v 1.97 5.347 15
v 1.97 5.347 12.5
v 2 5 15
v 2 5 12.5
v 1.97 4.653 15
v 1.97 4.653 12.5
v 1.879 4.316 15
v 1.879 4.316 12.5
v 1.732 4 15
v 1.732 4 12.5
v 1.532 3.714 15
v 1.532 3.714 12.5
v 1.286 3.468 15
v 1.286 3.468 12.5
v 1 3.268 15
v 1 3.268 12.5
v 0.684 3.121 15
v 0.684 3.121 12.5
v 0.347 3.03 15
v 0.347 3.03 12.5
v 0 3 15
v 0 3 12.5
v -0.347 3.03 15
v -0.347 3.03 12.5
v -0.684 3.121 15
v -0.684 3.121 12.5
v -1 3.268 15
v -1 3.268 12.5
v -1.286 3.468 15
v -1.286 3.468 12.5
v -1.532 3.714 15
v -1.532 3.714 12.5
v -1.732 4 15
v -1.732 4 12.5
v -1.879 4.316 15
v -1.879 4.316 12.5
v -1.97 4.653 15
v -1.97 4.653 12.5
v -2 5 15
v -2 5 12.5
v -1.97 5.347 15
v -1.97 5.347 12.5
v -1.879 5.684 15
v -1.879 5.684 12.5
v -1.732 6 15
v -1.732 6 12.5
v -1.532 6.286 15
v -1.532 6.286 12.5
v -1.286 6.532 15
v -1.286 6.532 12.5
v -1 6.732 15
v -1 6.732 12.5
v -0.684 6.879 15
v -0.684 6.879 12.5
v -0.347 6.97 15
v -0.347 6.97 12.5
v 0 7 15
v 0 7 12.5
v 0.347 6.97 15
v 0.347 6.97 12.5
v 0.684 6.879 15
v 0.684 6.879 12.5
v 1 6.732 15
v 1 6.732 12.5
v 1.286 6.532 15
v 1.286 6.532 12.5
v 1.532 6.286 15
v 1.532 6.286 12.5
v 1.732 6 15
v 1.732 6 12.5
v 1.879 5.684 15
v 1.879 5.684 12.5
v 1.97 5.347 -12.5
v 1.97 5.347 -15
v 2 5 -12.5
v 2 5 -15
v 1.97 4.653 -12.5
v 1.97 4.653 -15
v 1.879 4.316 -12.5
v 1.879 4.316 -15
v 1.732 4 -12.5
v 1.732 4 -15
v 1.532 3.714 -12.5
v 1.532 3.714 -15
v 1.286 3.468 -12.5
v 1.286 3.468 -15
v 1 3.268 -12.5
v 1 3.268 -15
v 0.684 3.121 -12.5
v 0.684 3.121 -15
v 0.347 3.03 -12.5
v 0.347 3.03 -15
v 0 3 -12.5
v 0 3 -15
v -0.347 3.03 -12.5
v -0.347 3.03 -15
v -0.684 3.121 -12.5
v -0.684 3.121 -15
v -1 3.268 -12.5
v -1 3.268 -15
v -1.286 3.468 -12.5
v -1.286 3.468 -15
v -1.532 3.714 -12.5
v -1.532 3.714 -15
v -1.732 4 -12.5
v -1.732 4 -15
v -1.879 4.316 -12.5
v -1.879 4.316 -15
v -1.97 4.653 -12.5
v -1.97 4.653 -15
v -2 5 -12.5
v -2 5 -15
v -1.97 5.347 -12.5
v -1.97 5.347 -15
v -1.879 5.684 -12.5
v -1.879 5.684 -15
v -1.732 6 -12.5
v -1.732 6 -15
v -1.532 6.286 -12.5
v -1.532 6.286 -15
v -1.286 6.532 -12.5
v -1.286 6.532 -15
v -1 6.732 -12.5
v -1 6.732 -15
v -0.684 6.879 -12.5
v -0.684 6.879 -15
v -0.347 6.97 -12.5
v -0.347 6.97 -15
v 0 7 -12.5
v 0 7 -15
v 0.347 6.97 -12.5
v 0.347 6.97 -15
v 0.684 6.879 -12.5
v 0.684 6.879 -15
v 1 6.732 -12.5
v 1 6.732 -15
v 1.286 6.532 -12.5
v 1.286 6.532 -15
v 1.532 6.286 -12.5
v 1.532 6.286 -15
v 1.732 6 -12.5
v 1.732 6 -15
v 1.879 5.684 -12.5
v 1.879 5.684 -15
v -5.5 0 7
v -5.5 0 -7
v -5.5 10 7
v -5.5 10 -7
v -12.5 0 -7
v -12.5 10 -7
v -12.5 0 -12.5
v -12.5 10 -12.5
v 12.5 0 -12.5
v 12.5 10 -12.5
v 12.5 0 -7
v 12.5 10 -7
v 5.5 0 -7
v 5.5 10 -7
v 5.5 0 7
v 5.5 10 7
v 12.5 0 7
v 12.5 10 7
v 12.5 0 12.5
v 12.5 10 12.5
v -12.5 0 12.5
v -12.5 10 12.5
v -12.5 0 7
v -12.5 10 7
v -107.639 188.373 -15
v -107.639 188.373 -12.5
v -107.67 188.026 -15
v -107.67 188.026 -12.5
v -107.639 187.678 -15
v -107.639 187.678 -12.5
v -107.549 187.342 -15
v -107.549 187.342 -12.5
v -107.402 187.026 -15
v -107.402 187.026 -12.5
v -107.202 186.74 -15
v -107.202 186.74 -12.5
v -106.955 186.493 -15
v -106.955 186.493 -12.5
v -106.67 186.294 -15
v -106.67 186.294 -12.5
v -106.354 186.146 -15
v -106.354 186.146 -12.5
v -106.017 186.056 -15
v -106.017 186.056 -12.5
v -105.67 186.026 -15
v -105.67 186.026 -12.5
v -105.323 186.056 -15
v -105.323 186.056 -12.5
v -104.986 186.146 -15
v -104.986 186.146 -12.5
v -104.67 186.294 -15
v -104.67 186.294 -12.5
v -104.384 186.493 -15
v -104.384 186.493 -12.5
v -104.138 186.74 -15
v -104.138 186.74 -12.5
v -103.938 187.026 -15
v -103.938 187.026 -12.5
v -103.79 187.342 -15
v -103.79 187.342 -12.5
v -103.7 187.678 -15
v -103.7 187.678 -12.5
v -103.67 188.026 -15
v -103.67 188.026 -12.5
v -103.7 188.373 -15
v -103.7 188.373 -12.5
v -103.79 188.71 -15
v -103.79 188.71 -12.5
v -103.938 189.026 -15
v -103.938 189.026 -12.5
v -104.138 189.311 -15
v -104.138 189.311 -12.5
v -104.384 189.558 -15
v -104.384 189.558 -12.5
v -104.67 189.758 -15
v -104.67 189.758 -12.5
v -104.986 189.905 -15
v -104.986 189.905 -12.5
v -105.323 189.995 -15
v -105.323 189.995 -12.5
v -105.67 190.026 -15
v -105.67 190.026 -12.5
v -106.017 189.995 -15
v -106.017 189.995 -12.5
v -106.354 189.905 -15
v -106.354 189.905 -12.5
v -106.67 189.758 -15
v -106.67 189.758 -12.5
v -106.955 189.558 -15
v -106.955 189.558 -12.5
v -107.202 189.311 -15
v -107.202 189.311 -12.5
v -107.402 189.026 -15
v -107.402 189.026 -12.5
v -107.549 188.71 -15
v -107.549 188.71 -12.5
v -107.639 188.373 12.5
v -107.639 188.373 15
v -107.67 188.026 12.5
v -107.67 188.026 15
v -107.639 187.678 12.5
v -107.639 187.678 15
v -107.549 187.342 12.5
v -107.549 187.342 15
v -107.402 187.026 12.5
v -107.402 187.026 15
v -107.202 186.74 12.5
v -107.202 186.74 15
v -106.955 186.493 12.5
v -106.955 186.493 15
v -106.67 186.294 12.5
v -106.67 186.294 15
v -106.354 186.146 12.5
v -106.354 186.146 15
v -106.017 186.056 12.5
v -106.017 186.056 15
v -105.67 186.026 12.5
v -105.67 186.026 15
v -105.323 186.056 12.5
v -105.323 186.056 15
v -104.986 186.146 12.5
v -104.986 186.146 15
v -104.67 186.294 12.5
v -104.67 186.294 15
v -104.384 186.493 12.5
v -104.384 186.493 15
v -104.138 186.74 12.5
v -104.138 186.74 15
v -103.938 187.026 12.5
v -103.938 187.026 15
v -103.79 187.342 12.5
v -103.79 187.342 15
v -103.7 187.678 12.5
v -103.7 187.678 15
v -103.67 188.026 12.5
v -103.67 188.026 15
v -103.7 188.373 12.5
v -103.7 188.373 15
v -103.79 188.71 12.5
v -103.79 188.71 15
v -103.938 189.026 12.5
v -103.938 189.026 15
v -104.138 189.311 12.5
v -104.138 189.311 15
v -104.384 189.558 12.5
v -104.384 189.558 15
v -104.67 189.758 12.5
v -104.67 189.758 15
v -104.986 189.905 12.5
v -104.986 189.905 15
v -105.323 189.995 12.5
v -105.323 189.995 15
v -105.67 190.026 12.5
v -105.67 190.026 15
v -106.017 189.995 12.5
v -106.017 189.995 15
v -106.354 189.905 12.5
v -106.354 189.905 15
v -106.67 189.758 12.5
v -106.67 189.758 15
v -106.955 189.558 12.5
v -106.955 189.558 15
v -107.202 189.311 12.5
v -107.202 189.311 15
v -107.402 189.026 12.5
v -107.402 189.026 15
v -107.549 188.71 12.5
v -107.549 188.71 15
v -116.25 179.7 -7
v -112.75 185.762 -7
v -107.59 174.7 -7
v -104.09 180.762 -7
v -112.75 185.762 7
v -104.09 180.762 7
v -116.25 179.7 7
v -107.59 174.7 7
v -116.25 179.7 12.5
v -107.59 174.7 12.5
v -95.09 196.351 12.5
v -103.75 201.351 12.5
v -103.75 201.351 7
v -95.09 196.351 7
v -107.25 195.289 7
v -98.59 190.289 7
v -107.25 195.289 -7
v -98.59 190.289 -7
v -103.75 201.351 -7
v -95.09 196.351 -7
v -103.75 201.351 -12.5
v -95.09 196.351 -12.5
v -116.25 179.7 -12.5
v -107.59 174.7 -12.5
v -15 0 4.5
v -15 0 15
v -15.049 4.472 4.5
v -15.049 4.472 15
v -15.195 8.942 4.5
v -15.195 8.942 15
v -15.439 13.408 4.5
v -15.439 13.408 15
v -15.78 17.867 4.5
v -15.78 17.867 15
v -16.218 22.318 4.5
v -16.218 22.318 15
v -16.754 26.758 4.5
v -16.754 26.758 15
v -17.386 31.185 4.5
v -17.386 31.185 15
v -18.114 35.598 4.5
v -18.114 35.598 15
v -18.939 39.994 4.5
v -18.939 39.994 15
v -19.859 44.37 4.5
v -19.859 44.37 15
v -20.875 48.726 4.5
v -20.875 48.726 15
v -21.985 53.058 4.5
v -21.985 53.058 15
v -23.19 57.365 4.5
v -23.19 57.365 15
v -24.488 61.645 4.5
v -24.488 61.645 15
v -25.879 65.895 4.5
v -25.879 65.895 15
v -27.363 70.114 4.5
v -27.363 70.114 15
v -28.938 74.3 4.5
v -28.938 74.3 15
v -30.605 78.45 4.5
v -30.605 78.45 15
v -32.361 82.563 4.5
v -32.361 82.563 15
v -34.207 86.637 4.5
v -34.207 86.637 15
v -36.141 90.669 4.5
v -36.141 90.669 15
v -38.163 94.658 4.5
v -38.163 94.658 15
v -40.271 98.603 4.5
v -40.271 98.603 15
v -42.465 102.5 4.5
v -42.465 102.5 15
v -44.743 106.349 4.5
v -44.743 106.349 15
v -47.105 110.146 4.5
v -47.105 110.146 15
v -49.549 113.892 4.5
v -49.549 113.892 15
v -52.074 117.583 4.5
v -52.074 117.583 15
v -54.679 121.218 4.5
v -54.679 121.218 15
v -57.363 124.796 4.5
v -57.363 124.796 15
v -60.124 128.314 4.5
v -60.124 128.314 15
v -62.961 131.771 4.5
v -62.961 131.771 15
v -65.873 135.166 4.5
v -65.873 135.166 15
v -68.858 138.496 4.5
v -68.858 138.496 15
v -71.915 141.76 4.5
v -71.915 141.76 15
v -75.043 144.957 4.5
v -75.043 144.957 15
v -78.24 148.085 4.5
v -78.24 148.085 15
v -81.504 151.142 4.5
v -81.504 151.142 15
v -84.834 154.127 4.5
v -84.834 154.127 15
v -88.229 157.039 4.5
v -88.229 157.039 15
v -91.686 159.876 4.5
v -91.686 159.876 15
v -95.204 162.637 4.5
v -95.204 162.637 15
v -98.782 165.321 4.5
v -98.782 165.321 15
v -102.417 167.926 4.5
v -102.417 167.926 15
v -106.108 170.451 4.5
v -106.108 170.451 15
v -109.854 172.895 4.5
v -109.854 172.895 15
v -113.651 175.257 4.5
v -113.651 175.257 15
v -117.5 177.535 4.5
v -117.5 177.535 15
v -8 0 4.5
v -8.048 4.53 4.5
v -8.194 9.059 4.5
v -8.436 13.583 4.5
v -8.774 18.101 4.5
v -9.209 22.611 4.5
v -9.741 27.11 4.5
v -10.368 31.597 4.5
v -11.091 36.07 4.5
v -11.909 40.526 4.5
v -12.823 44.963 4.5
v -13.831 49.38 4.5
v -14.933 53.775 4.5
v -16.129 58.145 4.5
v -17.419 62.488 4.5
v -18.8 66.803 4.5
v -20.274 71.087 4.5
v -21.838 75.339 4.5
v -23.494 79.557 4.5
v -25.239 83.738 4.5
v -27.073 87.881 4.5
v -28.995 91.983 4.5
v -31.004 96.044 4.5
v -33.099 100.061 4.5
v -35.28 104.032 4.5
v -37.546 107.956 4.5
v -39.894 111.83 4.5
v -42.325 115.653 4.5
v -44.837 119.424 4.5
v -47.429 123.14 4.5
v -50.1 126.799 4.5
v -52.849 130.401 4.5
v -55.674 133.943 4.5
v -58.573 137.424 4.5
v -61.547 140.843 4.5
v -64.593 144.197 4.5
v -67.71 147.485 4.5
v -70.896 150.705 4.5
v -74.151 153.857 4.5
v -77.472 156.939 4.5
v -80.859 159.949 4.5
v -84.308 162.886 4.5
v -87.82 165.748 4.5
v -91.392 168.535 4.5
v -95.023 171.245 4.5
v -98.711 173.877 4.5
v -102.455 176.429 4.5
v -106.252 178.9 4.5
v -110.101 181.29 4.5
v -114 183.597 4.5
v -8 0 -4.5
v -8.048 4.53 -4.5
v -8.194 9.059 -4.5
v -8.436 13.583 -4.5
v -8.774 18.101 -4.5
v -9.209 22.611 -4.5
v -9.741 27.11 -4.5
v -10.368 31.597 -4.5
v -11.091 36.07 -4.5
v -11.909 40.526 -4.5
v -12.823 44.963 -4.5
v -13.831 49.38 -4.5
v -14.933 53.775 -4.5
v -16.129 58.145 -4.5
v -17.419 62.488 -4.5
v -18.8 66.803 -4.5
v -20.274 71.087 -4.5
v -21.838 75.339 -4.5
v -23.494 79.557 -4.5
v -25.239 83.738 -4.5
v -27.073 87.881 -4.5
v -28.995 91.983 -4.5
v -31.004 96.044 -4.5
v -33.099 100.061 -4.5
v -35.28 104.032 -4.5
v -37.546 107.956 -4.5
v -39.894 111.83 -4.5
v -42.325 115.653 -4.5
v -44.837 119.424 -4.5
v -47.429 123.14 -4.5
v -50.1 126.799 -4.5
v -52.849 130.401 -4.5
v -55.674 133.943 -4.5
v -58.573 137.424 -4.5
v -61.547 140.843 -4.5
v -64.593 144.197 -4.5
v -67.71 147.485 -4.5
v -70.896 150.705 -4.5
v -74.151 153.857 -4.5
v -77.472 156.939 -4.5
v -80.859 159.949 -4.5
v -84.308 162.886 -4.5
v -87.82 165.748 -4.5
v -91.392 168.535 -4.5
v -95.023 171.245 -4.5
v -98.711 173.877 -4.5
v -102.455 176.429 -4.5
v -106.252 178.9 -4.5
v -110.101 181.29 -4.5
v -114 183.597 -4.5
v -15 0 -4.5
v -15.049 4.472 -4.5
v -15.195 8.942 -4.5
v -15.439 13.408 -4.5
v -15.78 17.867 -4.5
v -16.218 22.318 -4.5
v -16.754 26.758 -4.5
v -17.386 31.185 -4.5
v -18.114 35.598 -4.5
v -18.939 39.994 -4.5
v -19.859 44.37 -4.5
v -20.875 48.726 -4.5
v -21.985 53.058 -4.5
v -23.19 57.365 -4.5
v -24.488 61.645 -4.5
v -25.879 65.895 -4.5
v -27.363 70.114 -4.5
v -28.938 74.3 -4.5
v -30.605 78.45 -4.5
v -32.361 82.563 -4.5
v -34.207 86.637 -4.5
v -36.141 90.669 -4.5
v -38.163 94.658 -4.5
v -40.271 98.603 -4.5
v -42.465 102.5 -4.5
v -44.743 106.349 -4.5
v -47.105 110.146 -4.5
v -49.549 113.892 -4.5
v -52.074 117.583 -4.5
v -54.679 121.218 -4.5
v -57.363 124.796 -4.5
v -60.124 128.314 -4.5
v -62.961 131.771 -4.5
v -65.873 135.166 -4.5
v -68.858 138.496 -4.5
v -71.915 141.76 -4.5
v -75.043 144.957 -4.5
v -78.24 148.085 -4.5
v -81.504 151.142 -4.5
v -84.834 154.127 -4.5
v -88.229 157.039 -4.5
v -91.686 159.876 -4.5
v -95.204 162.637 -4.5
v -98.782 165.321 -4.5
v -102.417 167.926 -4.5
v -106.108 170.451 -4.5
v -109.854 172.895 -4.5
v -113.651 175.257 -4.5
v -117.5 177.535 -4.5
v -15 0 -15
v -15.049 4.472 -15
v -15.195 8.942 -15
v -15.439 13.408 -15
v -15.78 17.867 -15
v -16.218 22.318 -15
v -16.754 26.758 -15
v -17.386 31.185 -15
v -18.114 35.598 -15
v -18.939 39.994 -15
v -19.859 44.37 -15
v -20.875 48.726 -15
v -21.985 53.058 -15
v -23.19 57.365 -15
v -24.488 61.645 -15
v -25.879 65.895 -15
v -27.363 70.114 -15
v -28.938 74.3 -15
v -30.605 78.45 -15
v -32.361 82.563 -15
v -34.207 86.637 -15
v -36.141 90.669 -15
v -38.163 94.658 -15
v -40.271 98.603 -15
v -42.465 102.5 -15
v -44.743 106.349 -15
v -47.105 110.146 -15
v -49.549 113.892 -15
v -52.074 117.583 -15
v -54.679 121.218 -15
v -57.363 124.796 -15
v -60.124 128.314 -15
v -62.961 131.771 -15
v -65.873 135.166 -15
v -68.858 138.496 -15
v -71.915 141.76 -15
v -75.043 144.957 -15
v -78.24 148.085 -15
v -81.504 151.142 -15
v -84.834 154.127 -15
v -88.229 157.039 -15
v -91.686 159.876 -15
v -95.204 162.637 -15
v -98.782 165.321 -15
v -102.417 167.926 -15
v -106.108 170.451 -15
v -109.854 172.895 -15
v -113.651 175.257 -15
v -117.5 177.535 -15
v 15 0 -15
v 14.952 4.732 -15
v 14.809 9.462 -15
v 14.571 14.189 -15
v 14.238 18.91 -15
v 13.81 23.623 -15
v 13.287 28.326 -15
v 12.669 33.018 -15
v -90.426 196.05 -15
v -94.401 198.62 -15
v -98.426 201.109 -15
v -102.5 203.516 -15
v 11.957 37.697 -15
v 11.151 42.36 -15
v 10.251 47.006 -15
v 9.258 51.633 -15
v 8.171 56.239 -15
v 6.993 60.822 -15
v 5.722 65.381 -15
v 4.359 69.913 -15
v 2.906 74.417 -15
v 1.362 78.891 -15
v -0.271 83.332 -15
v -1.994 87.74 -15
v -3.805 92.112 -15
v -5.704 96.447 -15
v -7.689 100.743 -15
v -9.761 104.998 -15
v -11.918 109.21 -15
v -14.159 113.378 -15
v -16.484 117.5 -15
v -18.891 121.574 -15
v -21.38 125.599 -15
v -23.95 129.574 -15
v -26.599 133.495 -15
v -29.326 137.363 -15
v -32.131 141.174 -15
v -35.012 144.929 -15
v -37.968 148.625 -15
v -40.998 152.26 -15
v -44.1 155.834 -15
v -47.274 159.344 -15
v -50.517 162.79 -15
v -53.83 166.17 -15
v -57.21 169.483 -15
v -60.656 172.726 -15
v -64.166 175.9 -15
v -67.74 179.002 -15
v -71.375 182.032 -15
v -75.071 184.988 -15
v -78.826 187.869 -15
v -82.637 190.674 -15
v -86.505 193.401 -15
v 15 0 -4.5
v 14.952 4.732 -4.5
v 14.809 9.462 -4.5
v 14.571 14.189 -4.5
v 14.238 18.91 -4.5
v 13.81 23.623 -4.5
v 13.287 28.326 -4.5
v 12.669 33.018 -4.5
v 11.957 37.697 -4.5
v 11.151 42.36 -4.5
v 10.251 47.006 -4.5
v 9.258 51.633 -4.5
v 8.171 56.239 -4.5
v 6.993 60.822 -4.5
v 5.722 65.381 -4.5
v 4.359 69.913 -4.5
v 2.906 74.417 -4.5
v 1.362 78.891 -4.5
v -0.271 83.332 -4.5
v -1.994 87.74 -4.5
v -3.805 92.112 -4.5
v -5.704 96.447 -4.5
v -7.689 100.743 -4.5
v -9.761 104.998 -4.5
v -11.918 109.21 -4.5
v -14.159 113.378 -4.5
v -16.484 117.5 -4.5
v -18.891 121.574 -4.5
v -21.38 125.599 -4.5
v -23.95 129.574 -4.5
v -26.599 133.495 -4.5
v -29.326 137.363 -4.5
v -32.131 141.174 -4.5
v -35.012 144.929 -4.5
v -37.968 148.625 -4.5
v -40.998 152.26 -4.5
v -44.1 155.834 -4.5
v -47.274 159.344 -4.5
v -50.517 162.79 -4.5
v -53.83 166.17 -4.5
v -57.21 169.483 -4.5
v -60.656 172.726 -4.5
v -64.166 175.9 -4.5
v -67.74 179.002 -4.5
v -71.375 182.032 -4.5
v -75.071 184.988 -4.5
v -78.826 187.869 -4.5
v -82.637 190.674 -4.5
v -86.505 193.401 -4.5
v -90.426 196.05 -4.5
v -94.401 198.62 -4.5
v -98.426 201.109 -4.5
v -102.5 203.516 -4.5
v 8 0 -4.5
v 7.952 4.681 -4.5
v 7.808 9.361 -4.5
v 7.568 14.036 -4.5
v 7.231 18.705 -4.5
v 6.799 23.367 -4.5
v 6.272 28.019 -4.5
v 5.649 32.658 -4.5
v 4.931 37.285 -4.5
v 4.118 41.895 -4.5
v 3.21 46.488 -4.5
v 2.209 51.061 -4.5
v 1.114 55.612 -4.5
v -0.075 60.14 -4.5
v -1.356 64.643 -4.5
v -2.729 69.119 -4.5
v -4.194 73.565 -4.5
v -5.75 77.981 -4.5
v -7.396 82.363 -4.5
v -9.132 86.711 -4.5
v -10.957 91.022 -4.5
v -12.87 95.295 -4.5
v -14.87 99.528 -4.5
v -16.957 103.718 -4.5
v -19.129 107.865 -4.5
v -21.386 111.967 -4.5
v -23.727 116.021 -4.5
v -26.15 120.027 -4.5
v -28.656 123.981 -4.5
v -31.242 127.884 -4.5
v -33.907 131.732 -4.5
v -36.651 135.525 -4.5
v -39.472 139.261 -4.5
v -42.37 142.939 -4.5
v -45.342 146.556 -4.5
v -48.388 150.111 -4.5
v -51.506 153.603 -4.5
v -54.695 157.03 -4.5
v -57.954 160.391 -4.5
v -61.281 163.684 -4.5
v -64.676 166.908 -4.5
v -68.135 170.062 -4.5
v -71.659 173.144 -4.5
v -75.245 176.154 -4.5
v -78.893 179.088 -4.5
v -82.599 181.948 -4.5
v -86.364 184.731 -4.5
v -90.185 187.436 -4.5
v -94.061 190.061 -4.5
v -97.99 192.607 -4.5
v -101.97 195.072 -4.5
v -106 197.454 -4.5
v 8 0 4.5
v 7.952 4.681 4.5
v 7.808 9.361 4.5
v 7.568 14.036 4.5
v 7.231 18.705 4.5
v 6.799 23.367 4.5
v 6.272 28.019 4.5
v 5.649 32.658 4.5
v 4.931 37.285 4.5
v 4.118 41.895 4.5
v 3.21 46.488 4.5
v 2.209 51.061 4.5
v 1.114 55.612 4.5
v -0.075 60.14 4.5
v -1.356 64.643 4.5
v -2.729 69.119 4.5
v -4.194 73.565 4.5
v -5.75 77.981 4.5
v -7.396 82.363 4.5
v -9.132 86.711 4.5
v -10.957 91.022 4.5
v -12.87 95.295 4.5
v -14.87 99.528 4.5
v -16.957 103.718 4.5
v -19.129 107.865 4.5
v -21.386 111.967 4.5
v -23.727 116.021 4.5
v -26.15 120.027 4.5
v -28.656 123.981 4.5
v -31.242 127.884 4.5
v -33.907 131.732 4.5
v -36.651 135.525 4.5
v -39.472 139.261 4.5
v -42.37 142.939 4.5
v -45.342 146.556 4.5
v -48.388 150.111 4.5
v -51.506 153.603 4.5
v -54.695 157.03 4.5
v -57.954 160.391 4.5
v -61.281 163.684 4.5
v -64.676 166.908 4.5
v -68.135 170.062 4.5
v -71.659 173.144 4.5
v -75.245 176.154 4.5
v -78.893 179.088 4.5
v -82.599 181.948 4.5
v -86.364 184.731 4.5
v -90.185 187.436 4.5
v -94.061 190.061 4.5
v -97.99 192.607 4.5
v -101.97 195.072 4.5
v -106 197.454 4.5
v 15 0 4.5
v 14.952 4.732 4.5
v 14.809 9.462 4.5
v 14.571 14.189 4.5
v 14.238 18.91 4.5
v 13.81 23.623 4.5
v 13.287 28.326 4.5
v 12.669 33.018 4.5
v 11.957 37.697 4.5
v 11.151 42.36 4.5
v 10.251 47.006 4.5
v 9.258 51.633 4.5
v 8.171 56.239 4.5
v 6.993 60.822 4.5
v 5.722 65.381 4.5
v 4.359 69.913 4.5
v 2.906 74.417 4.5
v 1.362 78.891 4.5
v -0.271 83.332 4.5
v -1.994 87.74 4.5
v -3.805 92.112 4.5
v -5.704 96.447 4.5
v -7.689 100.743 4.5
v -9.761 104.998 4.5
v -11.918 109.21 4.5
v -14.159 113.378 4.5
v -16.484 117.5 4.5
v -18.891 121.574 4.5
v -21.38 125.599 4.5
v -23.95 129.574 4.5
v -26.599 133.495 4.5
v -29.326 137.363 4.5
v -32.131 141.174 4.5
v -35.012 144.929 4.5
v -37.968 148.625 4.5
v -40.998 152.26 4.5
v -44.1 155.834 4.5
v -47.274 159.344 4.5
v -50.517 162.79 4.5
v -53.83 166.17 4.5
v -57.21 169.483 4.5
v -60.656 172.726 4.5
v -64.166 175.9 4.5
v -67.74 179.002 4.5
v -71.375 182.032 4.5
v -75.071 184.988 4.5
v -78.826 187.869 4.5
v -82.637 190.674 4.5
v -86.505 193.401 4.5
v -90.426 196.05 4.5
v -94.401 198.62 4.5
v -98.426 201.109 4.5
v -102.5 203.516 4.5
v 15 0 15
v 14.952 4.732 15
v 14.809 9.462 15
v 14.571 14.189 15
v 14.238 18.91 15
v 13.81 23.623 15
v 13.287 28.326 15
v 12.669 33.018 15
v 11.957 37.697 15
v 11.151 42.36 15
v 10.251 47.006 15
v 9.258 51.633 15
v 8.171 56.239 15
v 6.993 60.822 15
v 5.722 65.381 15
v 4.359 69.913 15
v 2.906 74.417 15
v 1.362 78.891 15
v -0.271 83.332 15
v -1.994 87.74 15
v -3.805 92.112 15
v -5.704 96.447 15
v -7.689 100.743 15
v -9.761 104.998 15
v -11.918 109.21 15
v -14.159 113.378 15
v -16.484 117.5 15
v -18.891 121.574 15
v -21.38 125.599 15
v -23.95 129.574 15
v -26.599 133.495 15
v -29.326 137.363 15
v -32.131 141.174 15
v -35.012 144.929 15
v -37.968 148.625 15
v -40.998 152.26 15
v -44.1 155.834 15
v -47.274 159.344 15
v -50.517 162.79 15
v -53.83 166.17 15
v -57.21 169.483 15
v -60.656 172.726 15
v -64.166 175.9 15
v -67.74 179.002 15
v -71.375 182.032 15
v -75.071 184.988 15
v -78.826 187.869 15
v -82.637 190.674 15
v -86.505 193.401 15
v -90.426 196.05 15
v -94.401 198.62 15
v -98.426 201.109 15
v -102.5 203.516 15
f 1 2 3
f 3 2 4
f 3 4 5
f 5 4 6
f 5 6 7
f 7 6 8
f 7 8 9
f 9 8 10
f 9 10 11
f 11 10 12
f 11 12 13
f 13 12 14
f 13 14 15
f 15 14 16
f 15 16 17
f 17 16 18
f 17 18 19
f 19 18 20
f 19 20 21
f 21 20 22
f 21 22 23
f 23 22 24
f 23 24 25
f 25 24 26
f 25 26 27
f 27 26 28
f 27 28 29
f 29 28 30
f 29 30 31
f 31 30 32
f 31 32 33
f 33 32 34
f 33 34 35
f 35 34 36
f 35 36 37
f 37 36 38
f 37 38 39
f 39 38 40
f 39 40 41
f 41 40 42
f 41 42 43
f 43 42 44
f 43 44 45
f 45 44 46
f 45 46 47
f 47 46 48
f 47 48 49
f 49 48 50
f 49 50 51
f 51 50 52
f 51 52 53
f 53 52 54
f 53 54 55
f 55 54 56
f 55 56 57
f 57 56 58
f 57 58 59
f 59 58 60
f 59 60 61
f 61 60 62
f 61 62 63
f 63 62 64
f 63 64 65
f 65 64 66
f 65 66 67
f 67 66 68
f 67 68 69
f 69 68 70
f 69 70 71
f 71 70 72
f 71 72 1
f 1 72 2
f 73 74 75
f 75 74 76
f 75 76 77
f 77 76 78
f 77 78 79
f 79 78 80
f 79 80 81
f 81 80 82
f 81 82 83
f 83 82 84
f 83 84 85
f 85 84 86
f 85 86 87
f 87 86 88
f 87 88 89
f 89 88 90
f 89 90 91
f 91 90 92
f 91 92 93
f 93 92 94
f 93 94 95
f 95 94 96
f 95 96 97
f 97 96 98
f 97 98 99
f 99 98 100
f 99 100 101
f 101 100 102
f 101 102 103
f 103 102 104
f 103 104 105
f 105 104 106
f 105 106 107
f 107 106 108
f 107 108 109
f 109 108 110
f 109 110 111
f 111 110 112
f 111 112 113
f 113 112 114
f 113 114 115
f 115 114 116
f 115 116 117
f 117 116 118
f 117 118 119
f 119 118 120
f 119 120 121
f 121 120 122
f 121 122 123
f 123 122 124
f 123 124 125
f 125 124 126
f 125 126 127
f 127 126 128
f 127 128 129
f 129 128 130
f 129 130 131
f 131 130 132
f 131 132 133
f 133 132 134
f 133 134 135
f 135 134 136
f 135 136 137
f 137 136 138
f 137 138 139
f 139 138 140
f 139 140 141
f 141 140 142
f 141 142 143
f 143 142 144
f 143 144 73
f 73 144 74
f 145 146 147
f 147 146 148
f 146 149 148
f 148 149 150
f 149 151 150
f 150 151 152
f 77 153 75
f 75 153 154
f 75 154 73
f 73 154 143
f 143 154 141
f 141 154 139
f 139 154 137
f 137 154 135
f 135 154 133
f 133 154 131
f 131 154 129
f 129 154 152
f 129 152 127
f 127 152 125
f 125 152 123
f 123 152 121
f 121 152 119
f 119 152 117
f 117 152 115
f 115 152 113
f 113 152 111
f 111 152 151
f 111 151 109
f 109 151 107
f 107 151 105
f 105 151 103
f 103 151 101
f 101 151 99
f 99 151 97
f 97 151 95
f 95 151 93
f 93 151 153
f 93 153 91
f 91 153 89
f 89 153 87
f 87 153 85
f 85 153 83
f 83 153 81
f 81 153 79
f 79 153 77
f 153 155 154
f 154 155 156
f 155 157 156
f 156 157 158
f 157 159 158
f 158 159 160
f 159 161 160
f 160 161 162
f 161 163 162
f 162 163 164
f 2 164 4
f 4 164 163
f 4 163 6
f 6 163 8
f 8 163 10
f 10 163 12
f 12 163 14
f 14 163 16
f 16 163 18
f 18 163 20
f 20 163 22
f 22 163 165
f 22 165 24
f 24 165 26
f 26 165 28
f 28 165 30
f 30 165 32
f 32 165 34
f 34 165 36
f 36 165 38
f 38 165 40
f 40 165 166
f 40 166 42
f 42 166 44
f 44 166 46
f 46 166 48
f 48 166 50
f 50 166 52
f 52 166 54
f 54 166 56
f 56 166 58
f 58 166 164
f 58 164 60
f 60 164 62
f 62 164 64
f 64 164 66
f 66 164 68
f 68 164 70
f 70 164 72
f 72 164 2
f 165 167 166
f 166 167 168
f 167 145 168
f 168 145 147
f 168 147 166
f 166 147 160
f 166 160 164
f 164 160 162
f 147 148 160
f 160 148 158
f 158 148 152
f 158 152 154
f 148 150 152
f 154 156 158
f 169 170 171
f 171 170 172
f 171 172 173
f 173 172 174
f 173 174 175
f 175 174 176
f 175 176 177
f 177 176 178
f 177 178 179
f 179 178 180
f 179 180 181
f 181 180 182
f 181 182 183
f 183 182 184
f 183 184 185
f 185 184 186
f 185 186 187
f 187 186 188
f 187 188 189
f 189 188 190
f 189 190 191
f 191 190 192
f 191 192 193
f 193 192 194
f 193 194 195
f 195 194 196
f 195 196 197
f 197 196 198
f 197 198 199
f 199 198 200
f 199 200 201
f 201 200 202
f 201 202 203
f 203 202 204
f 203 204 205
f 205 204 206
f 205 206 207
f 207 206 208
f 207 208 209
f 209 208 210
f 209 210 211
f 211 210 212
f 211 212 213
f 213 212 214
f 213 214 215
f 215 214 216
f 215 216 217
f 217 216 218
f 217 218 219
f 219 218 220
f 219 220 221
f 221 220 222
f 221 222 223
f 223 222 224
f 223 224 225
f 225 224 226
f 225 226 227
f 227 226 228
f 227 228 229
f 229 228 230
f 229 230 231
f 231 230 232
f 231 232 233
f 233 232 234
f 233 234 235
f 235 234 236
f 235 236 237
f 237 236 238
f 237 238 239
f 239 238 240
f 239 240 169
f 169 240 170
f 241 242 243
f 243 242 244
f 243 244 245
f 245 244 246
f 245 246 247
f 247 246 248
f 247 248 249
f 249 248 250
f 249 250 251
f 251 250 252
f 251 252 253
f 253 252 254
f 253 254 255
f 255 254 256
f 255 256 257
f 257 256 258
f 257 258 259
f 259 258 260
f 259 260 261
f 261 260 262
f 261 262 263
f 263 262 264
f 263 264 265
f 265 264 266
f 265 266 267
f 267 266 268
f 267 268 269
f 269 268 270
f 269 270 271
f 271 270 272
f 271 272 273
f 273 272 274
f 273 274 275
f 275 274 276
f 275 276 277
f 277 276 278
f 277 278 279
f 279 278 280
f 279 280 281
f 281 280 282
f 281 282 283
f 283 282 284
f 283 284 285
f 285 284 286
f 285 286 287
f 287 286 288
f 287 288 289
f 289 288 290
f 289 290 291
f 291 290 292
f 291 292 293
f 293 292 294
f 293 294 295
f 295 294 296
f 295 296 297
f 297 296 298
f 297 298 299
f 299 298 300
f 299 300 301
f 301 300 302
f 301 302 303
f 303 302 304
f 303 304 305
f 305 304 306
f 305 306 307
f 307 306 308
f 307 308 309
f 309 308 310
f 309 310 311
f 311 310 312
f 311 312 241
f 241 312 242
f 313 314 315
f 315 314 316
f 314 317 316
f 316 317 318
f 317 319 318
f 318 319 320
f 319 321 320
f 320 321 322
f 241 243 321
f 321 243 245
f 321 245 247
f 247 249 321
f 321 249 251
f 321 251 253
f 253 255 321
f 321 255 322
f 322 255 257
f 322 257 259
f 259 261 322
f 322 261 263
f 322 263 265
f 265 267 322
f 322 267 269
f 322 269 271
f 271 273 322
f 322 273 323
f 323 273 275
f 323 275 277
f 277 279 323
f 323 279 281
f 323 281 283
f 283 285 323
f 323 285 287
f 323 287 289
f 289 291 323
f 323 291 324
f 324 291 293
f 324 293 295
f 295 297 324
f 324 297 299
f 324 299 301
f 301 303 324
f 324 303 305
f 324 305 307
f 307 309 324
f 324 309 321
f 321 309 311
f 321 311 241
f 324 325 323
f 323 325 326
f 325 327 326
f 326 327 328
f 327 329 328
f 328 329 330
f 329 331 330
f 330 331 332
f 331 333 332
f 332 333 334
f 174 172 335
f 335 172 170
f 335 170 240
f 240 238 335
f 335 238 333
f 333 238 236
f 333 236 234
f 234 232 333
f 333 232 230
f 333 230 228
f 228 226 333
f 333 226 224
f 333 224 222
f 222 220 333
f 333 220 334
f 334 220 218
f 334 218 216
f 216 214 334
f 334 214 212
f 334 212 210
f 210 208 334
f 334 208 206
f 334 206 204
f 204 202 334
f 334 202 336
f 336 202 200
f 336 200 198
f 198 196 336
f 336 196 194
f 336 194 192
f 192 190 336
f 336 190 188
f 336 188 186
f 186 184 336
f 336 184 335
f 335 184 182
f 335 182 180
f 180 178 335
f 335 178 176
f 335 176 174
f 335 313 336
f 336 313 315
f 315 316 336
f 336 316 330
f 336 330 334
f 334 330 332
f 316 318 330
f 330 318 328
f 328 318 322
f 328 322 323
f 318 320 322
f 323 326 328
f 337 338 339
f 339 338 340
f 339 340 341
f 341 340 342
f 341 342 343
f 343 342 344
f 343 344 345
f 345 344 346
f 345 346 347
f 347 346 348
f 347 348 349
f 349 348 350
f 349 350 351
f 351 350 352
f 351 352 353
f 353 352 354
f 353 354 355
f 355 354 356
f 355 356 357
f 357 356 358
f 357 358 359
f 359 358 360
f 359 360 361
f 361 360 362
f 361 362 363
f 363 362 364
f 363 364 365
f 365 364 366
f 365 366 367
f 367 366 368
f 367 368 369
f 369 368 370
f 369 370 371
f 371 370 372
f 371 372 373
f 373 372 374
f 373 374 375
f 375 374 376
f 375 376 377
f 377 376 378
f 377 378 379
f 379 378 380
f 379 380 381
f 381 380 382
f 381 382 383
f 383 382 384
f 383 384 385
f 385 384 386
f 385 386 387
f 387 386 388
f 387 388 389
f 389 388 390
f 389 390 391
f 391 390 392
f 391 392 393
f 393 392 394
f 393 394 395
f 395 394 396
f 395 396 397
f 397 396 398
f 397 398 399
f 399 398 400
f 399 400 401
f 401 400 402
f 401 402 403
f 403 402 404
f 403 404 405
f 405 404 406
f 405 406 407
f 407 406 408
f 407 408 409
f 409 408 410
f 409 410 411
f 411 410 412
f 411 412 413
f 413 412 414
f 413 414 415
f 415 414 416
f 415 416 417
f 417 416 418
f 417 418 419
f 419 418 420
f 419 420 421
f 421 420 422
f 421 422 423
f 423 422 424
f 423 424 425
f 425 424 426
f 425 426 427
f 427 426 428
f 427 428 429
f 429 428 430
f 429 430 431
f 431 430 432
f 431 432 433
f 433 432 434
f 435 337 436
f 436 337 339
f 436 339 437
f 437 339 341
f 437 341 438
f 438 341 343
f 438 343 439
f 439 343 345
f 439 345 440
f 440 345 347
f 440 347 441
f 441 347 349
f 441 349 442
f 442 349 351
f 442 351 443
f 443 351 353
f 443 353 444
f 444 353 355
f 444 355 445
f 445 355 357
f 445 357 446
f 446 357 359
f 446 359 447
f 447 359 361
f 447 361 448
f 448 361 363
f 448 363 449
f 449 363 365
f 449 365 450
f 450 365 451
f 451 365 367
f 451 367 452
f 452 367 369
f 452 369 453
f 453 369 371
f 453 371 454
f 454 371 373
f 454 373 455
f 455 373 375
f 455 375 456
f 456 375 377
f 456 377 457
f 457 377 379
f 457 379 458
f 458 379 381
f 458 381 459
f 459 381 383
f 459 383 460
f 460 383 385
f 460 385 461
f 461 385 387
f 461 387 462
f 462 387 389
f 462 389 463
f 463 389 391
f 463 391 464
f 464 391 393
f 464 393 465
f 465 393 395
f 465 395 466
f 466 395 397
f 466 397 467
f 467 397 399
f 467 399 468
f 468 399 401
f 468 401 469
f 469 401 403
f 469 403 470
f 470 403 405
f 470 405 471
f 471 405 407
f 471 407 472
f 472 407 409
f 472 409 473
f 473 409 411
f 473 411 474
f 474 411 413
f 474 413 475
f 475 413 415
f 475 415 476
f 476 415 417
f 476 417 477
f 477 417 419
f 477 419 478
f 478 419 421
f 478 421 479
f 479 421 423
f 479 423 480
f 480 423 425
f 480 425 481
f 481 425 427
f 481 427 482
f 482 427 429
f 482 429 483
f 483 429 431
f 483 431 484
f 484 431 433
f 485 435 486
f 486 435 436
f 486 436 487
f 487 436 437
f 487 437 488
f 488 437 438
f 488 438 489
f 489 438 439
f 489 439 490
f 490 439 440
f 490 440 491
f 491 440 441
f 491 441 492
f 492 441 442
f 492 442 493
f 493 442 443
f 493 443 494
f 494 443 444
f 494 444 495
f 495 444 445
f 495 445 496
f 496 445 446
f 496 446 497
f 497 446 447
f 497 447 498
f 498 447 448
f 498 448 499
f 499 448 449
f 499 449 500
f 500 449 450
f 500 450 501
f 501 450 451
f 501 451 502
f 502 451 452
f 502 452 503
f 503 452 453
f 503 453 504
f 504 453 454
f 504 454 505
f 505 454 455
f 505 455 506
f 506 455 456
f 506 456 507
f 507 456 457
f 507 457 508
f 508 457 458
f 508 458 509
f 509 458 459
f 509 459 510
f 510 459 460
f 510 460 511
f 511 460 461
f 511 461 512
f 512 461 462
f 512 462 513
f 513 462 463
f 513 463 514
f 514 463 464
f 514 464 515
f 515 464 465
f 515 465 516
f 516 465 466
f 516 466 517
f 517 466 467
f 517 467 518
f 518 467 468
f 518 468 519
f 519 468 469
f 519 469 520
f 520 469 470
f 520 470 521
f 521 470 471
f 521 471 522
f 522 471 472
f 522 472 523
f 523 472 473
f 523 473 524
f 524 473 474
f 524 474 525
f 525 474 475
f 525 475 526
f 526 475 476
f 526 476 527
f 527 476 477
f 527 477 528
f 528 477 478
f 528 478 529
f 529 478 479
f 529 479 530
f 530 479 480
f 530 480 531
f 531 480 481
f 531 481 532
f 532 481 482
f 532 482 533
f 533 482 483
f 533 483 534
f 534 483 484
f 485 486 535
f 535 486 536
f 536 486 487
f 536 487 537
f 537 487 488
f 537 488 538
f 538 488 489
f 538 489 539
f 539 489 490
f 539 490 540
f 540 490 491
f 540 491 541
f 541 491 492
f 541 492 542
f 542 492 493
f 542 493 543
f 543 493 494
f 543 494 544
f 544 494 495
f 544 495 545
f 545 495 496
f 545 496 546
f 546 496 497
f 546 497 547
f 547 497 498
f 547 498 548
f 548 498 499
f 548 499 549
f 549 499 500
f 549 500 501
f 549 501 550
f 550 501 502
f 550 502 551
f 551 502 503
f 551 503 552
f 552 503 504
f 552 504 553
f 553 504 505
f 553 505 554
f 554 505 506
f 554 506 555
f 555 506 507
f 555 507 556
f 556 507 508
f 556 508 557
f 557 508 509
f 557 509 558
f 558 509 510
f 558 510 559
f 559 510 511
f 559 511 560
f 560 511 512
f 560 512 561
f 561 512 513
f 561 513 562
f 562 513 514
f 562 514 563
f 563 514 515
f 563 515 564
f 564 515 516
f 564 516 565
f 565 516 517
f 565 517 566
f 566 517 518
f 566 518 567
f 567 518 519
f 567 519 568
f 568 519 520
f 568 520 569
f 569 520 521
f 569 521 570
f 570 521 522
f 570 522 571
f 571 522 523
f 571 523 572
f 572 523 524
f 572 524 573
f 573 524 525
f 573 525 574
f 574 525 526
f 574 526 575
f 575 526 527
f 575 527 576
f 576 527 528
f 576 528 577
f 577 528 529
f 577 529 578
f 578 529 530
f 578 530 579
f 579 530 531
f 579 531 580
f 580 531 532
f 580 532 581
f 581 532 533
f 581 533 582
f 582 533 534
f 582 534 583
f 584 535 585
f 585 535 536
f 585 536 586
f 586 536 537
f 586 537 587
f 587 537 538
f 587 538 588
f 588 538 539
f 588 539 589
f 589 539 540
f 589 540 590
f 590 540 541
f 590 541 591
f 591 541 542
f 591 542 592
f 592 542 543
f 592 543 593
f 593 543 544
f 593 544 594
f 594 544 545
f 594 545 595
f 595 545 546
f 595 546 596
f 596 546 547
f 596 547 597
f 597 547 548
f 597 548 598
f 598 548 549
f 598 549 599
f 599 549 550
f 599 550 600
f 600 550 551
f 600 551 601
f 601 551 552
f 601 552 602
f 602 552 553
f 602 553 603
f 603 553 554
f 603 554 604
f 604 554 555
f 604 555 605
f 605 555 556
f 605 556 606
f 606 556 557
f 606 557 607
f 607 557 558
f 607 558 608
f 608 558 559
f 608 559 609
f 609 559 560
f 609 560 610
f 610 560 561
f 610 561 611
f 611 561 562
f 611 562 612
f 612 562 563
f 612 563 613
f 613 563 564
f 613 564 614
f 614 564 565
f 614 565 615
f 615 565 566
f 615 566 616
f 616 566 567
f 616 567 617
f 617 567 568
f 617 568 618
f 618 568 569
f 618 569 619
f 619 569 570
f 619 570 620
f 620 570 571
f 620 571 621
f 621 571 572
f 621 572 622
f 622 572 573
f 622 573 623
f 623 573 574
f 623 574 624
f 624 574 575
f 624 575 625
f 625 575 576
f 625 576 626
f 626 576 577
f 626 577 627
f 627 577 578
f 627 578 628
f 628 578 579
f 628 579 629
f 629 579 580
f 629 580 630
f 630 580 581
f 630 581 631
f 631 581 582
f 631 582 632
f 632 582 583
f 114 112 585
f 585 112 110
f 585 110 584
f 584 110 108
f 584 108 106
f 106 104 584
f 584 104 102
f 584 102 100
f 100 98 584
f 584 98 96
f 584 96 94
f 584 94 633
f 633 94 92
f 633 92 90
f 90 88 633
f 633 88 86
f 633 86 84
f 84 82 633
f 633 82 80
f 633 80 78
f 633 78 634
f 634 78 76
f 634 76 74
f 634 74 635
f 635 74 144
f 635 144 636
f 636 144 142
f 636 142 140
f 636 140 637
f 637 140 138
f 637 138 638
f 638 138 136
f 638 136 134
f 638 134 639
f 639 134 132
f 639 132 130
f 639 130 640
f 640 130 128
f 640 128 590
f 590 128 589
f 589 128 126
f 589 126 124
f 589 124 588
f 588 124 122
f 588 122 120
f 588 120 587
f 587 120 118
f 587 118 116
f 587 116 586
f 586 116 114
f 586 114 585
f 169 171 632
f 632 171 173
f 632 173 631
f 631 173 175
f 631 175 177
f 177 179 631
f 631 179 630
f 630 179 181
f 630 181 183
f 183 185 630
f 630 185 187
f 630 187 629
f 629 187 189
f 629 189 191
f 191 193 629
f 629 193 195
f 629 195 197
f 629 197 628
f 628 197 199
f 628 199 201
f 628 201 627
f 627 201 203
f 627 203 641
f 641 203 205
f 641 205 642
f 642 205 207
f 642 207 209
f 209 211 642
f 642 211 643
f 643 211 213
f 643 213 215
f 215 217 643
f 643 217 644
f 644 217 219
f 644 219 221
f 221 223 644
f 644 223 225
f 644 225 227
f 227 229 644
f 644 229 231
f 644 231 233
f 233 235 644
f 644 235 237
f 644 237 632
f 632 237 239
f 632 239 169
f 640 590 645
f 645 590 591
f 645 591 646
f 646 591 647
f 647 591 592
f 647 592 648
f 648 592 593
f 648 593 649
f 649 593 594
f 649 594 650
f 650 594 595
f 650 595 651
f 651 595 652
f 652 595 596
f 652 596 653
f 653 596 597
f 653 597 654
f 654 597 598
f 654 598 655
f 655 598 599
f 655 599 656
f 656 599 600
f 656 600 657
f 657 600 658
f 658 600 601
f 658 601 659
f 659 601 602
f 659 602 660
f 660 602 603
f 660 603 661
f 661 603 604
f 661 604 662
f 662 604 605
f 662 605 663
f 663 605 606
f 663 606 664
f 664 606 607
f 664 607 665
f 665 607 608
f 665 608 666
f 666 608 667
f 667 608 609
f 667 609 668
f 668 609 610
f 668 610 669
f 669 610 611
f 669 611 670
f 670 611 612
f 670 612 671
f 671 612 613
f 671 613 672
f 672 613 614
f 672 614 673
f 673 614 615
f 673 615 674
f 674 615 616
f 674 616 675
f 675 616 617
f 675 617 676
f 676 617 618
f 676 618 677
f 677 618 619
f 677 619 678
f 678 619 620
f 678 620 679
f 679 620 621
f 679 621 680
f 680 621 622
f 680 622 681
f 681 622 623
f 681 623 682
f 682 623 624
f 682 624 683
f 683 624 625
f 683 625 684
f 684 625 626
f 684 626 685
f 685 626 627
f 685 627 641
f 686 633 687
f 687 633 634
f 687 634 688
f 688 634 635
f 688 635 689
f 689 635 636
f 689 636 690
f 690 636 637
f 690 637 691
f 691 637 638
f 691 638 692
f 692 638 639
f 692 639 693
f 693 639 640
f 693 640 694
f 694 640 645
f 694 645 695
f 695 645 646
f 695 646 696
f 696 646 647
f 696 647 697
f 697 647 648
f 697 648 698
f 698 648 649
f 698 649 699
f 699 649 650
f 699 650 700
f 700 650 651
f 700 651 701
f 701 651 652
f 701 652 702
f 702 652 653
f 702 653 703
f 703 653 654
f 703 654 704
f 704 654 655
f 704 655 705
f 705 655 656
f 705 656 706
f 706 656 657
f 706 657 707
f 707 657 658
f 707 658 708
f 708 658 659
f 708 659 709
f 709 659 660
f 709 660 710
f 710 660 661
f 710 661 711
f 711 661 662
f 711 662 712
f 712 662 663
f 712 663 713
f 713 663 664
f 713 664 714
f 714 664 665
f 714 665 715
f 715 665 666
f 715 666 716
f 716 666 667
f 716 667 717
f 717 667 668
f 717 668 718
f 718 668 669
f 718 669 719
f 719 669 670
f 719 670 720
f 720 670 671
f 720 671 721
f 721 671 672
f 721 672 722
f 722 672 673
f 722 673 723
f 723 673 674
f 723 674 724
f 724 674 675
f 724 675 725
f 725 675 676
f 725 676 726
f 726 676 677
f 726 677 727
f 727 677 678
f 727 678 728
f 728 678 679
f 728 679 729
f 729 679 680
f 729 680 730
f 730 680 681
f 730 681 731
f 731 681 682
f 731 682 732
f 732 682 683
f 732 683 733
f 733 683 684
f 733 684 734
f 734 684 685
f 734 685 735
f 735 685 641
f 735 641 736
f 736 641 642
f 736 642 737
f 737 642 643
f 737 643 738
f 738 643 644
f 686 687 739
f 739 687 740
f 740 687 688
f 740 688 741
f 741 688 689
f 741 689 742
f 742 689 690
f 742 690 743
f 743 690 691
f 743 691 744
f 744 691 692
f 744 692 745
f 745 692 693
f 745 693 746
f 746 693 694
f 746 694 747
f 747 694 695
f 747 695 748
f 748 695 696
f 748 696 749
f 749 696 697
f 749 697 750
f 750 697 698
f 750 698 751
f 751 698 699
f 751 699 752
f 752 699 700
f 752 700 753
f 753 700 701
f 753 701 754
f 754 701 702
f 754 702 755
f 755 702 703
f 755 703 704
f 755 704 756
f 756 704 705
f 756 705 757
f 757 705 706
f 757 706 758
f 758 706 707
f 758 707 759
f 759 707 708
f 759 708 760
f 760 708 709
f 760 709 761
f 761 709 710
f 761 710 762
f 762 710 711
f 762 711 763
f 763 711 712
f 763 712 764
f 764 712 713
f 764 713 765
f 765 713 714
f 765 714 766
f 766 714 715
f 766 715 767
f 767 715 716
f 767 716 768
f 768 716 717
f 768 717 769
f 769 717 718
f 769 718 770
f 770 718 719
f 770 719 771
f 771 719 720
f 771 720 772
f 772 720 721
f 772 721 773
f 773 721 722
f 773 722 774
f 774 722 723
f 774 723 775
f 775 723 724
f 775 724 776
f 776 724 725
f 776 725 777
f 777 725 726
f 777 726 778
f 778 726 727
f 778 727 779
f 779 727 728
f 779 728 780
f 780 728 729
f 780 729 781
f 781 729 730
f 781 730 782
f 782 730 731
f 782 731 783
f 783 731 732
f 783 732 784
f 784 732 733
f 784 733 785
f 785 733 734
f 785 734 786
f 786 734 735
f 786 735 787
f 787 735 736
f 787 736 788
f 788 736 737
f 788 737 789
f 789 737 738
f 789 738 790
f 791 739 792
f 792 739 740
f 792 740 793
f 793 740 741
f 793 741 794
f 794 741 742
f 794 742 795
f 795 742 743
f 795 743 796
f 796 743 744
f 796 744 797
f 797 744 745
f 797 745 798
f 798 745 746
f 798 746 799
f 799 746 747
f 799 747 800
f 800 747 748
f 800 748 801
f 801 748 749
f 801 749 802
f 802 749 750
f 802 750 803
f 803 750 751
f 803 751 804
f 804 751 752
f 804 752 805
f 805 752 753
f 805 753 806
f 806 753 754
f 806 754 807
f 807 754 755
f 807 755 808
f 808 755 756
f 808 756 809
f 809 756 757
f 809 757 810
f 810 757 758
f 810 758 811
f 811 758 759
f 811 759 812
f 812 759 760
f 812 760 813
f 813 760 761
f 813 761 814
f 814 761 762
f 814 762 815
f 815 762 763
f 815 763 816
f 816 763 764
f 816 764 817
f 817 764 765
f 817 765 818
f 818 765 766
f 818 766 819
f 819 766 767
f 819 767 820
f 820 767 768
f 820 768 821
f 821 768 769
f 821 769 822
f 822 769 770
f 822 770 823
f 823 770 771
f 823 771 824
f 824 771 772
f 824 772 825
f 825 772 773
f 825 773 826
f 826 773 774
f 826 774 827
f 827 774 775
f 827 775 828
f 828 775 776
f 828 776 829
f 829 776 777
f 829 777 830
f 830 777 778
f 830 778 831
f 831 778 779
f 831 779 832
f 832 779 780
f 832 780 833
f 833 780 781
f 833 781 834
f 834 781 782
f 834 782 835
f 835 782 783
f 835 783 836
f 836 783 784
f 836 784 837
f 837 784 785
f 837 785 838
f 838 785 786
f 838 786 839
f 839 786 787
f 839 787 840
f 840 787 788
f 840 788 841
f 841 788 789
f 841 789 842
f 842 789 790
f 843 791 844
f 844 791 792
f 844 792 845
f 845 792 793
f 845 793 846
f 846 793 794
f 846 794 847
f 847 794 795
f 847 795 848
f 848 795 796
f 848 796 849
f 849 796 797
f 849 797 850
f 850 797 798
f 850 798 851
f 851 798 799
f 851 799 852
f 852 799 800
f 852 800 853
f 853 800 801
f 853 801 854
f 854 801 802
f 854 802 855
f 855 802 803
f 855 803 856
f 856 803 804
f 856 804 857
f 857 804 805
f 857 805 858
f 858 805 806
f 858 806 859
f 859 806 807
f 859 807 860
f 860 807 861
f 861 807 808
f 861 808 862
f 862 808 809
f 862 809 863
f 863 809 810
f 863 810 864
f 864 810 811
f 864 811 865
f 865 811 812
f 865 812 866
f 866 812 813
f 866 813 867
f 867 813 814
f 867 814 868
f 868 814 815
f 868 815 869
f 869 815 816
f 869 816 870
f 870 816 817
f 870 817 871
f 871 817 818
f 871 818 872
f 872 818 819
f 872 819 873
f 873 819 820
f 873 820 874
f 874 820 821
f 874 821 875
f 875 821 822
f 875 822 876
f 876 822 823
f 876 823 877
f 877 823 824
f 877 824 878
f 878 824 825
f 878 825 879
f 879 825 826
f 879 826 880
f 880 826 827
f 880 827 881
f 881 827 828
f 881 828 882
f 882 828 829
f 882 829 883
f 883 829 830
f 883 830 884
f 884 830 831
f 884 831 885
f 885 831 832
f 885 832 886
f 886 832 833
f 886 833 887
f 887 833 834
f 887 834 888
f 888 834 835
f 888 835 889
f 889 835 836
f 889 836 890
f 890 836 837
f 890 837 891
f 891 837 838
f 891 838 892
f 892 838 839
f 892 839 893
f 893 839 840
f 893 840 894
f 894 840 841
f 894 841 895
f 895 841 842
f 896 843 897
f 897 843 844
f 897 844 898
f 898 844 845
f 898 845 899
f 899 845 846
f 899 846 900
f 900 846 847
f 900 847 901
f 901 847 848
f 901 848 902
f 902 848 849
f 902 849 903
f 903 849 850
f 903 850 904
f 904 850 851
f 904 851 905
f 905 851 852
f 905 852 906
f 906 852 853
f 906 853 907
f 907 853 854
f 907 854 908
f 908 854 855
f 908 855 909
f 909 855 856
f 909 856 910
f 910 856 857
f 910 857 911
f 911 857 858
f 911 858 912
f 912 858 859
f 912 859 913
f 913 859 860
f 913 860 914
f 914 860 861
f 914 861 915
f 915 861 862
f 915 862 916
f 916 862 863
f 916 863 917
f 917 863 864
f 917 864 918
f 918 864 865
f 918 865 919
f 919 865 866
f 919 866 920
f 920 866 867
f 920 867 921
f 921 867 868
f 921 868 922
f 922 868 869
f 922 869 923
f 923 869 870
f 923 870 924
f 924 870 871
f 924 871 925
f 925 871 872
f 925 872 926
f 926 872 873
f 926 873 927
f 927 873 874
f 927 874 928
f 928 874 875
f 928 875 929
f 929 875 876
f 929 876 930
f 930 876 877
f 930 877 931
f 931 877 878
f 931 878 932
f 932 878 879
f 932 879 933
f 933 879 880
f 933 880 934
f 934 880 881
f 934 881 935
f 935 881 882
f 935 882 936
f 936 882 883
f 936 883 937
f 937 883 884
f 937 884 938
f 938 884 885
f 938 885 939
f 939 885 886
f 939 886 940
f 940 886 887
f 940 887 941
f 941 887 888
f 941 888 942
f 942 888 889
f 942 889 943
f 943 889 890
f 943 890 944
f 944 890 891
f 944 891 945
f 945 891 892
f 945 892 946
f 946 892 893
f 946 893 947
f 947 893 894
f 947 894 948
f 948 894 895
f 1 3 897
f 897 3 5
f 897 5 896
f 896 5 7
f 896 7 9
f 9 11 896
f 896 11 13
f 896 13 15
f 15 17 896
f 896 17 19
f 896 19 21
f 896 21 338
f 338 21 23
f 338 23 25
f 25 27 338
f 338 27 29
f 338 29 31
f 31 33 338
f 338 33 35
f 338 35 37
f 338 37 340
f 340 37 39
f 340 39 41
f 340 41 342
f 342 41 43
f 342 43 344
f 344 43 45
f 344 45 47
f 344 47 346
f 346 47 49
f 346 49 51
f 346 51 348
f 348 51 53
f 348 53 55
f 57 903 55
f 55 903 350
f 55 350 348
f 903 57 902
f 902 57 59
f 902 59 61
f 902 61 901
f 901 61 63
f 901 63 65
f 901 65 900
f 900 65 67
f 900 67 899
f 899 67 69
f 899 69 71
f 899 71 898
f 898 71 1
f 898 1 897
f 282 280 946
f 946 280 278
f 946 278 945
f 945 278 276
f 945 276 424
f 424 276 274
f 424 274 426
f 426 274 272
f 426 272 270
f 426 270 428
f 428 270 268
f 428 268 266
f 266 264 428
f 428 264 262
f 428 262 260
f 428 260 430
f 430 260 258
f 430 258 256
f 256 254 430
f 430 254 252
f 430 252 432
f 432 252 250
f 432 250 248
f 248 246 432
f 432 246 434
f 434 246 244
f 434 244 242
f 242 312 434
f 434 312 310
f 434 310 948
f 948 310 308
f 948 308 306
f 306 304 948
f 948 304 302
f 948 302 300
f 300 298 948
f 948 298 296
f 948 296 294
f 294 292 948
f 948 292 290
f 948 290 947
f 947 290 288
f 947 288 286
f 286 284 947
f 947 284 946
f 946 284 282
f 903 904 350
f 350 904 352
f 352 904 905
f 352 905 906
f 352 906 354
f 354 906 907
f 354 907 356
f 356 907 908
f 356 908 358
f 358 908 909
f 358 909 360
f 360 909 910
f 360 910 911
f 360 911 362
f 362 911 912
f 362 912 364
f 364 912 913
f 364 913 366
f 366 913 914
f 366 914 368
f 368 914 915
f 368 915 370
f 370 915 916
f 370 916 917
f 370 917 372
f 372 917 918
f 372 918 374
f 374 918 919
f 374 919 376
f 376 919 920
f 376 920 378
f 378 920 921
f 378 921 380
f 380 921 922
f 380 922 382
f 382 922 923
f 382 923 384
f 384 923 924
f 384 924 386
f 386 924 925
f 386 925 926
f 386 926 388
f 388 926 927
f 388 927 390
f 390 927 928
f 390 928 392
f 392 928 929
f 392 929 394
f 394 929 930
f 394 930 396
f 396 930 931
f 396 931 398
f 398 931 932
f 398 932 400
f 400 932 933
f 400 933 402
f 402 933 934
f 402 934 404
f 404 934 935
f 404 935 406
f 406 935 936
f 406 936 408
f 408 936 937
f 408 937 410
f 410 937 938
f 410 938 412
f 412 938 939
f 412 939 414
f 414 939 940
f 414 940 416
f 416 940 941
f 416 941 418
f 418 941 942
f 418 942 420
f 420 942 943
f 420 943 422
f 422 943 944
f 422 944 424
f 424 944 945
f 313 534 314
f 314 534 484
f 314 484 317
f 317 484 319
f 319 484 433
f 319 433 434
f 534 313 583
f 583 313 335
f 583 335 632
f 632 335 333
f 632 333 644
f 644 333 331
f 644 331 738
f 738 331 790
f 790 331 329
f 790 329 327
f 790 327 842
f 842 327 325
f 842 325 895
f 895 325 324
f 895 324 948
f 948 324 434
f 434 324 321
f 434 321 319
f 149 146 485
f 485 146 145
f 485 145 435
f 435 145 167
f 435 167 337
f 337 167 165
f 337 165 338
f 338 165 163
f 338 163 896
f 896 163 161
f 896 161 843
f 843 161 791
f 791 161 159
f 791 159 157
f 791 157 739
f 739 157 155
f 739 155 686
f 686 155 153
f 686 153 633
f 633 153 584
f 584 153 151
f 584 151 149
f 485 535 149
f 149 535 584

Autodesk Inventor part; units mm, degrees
ref_plane "YZ Plane" through (0, 0, 0) normal (1, 0, 0) x (0, 1, 0)
ref_plane "XZ Plane" through (0, 0, 0) normal (0, 1, 0) x (-1, 0, 0)
ref_plane "XY Plane" through (0, 0, 0) normal (0, 0, 1) x (1, 0, 0)
sketch "Sketch2" plane through (0, 0, 0) normal (0, 1, 0) x (-1, 0, 0)
  line L0 (15, 15) -> (-15, 15)
  line L1 (-15, -15) -> (15, -15)
  line L2 (15, 4.5) -> (8, 4.5)
  line L3 (8, 4.5) -> (8, -4.5)
  line L4 (8, -4.5) -> (15, -4.5)
  line L5 (-15, 4.5) -> (-8, 4.5)
  line L6 (-8, 4.5) -> (-8, -4.5)
  line L7 (-8, -4.5) -> (-15, -4.5)
  line L8 (15, -15) -> (15, -4.5)
  line L9 (15, 4.5) -> (15, 15)
  line L10 (-15, 15) -> (-15, 4.5)
  line L11 (-15, -4.5) -> (-15, -15)
  point P0 (0, 0)
  dimension "d18" = 9
  dimension "d19" = 7
  dimension "d21" = 16
  dimension "d22" = 30
  dimension "d23" = 15
  dimension "d24" = 4.5
  dimension "d25" = 8
sketch "Sketch6" plane through (0, 0, 0) normal (0, 0, 1) x (1, 0, 0)
  arc A0 (0, 0) -> (-110, 190.5256) centre (-220, 0) ccw
  line L0 (-220, 0) -> (-110, 190.5256) construction
  line L1 (-220, 0) -> (0, 0) construction
  dimension "d41" = 220
  dimension "d42" = 60
  dimension "d43" = 220
  dimension "d44" = 0
sweep "Sweep2" add profiles "Sketch2" path "Sketch6"
sketch "Sketch7" plane through (-102.5, 203.516, 4.5) normal (-0.8660254, 0.5, 0) x (0, 0, 1)
  line L0 (-17, -2.5) -> (-11.5, -2.5)
  line L1 (-11.5, -2.5) -> (-11.5, -9.5)
  line L2 (-11.5, -9.5) -> (2.5, -9.5)
  line L3 (2.5, -9.5) -> (2.5, -2.5)
  line L4 (2.5, -2.5) -> (8, -2.5)
  line L5 (8, -2.5) -> (8, -27.5)
  line L6 (8, -27.5) -> (2.5, -27.5)
  line L7 (2.5, -27.5) -> (2.5, -20.5)
  line L8 (2.5, -20.5) -> (-11.5, -20.5)
  line L9 (-11.5, -20.5) -> (-11.5, -27.5)
  line L10 (-11.5, -27.5) -> (-17, -27.5)
  line L11 (-17, -27.5) -> (-17, -2.5)
  line L12 (-19.5, 0) -> (-19.5, -30) projected
  line L13 (-9, -7) -> (-9, 0) projected
  line L14 (0, 0) -> (0, -7) projected
  line L15 (10.5, -30) -> (10.5, 0) projected
  line L16 (-19.5, -30) -> (-9, -30) projected
  line L17 (-9, 0) -> (-19.5, 0) projected
  line L18 (0, -30) -> (10.5, -30) projected
  line L19 (-9, -23) -> (0, -23) projected
  line L20 (0, -7) -> (-9, -7) projected
  point P0 (-4.5, -125)
  point P1 (-14.25, 0)
  dimension "d47" = 2.5
  dimension "d48" = 2.5
  dimension "d49" = 2.5
  dimension "d50" = 2.5
  dimension "d51" = 2.5
  dimension "d52" = 2.5
  dimension "d53" = 2.5
  dimension "d54" = 2.5
  dimension "d55" = 2.5
extrude "Extrusion3" cut sketch "Sketch7" against normal blind 10
sketch "Sketch9" plane through (-15, 0, 15) normal (0, 0, 1) x (1, 0, 0)
  circle A0 centre (-90.6699, 188.0256) radius 2
  line L0 (-90.6699, 188.0256) -> (-95, 190.5256) construction
  line L1 (-95, 190.5256) -> (-102.5, 177.5352) construction
  line L2 (-102.5, 177.5352) -> (-87.5, 203.516) projected
  point P0 (15, 0)
  dimension "d63" = 4
  dimension "d65" = 5
  dimension "d66" = 15
extrude "Extrusion5" cut sketch "Sketch9" against normal through all
sketch "Sketch10" plane through (-15, 0, 15) normal (0, -1, 0) x (1, 0, 0)
  line L0 (2.5, -2.5) -> (27.5, -2.5)
  line L1 (27.5, -2.5) -> (27.5, -8)
  line L2 (27.5, -8) -> (20.5, -8)
  line L3 (20.5, -8) -> (20.5, -22)
  line L4 (20.5, -22) -> (27.5, -22)
  line L5 (27.5, -22) -> (27.5, -27.5)
  line L6 (27.5, -27.5) -> (2.5, -27.5)
  line L7 (2.5, -27.5) -> (2.5, -22)
  line L8 (2.5, -22) -> (9.5, -22)
  line L9 (9.5, -22) -> (9.5, -8)
  line L10 (9.5, -8) -> (2.5, -8)
  line L11 (2.5, -2.5) -> (2.5, -8)
  line L12 (0, -10.5) -> (0, 0) projected
  line L13 (0, 0) -> (30, 0) projected
  line L14 (30, 0) -> (30, -10.5) projected
  line L15 (7, -19.5) -> (7, -10.5) projected
  line L16 (23, -10.5) -> (23, -19.5) projected
  line L17 (30, -30) -> (0, -30) projected
  line L18 (23, -19.5) -> (30, -19.5) projected
  line L19 (30, -10.5) -> (23, -10.5) projected
  point P0 (15, -15)
  point P1 (0, -5.25)
  point P2 (30, -5.25)
  point P3 (23, -15)
  point P4 (26.5, -19.5)
  dimension "d69" = 2.5
  dimension "d70" = 2.5
  dimension "d71" = 2.5
  dimension "d72" = 2.5
  dimension "d73" = 2.5
  dimension "d74" = 2.5
  dimension "d75" = 2.5
  dimension "d76" = 2.5
extrude "Extrusion6" cut sketch "Sketch10" against normal blind 10
sketch "Sketch11" plane through (15, 0, -15) normal (0, 0, -1) x (-1, 0, 0)
  circle A0 centre (15, 5) radius 2
  line L0 (0, 0) -> (30, 0) projected
  point P0 (15, 0)
  point P1 (15, 0)
  dimension "d79" = 4
  dimension "d80" = 5
  dimension "d81" = 15
extrude "Extrusion7" cut sketch "Sketch11" against normal through all
sketch "Sketch12" plane through (-15, 0, 15) normal (0, 0, 1) x (1, 0, 0)
  line L0 (52.0574, -18.6424) -> (-62.9426, -18.6424)
  line L1 (-62.9426, 220.5256) -> (52.0574, 220.5256)
  line L2 (52.0574, 220.5256) -> (52.0574, -18.6424)
  line L3 (0, 0) -> (30, 0) projected
  line L4 (-62.9426, 220.5256) -> (-96.15, 163.0087)
  line L5 (-96.15, 163.0087) -> (-96.15, -18.6424)
  line L6 (-62.9426, -18.6424) -> (-96.15, -18.6424)
  line L7 (-102.5, 177.5352) -> (-87.5, 203.516) projected
  point P0 (15, 0)
  point P1 (15, 0)
  point P2 (15, 0)
  dimension "d85" = 239.168
  dimension "d86" = 37.0574
  dimension "d87" = 18.6424
  dimension "d90" = 148.2074
  dimension "d91" = 115
  dimension "d92" = 181.6511
extrude "Extrusion8" [suppressed]
properties part number "LightRail_endSection"
